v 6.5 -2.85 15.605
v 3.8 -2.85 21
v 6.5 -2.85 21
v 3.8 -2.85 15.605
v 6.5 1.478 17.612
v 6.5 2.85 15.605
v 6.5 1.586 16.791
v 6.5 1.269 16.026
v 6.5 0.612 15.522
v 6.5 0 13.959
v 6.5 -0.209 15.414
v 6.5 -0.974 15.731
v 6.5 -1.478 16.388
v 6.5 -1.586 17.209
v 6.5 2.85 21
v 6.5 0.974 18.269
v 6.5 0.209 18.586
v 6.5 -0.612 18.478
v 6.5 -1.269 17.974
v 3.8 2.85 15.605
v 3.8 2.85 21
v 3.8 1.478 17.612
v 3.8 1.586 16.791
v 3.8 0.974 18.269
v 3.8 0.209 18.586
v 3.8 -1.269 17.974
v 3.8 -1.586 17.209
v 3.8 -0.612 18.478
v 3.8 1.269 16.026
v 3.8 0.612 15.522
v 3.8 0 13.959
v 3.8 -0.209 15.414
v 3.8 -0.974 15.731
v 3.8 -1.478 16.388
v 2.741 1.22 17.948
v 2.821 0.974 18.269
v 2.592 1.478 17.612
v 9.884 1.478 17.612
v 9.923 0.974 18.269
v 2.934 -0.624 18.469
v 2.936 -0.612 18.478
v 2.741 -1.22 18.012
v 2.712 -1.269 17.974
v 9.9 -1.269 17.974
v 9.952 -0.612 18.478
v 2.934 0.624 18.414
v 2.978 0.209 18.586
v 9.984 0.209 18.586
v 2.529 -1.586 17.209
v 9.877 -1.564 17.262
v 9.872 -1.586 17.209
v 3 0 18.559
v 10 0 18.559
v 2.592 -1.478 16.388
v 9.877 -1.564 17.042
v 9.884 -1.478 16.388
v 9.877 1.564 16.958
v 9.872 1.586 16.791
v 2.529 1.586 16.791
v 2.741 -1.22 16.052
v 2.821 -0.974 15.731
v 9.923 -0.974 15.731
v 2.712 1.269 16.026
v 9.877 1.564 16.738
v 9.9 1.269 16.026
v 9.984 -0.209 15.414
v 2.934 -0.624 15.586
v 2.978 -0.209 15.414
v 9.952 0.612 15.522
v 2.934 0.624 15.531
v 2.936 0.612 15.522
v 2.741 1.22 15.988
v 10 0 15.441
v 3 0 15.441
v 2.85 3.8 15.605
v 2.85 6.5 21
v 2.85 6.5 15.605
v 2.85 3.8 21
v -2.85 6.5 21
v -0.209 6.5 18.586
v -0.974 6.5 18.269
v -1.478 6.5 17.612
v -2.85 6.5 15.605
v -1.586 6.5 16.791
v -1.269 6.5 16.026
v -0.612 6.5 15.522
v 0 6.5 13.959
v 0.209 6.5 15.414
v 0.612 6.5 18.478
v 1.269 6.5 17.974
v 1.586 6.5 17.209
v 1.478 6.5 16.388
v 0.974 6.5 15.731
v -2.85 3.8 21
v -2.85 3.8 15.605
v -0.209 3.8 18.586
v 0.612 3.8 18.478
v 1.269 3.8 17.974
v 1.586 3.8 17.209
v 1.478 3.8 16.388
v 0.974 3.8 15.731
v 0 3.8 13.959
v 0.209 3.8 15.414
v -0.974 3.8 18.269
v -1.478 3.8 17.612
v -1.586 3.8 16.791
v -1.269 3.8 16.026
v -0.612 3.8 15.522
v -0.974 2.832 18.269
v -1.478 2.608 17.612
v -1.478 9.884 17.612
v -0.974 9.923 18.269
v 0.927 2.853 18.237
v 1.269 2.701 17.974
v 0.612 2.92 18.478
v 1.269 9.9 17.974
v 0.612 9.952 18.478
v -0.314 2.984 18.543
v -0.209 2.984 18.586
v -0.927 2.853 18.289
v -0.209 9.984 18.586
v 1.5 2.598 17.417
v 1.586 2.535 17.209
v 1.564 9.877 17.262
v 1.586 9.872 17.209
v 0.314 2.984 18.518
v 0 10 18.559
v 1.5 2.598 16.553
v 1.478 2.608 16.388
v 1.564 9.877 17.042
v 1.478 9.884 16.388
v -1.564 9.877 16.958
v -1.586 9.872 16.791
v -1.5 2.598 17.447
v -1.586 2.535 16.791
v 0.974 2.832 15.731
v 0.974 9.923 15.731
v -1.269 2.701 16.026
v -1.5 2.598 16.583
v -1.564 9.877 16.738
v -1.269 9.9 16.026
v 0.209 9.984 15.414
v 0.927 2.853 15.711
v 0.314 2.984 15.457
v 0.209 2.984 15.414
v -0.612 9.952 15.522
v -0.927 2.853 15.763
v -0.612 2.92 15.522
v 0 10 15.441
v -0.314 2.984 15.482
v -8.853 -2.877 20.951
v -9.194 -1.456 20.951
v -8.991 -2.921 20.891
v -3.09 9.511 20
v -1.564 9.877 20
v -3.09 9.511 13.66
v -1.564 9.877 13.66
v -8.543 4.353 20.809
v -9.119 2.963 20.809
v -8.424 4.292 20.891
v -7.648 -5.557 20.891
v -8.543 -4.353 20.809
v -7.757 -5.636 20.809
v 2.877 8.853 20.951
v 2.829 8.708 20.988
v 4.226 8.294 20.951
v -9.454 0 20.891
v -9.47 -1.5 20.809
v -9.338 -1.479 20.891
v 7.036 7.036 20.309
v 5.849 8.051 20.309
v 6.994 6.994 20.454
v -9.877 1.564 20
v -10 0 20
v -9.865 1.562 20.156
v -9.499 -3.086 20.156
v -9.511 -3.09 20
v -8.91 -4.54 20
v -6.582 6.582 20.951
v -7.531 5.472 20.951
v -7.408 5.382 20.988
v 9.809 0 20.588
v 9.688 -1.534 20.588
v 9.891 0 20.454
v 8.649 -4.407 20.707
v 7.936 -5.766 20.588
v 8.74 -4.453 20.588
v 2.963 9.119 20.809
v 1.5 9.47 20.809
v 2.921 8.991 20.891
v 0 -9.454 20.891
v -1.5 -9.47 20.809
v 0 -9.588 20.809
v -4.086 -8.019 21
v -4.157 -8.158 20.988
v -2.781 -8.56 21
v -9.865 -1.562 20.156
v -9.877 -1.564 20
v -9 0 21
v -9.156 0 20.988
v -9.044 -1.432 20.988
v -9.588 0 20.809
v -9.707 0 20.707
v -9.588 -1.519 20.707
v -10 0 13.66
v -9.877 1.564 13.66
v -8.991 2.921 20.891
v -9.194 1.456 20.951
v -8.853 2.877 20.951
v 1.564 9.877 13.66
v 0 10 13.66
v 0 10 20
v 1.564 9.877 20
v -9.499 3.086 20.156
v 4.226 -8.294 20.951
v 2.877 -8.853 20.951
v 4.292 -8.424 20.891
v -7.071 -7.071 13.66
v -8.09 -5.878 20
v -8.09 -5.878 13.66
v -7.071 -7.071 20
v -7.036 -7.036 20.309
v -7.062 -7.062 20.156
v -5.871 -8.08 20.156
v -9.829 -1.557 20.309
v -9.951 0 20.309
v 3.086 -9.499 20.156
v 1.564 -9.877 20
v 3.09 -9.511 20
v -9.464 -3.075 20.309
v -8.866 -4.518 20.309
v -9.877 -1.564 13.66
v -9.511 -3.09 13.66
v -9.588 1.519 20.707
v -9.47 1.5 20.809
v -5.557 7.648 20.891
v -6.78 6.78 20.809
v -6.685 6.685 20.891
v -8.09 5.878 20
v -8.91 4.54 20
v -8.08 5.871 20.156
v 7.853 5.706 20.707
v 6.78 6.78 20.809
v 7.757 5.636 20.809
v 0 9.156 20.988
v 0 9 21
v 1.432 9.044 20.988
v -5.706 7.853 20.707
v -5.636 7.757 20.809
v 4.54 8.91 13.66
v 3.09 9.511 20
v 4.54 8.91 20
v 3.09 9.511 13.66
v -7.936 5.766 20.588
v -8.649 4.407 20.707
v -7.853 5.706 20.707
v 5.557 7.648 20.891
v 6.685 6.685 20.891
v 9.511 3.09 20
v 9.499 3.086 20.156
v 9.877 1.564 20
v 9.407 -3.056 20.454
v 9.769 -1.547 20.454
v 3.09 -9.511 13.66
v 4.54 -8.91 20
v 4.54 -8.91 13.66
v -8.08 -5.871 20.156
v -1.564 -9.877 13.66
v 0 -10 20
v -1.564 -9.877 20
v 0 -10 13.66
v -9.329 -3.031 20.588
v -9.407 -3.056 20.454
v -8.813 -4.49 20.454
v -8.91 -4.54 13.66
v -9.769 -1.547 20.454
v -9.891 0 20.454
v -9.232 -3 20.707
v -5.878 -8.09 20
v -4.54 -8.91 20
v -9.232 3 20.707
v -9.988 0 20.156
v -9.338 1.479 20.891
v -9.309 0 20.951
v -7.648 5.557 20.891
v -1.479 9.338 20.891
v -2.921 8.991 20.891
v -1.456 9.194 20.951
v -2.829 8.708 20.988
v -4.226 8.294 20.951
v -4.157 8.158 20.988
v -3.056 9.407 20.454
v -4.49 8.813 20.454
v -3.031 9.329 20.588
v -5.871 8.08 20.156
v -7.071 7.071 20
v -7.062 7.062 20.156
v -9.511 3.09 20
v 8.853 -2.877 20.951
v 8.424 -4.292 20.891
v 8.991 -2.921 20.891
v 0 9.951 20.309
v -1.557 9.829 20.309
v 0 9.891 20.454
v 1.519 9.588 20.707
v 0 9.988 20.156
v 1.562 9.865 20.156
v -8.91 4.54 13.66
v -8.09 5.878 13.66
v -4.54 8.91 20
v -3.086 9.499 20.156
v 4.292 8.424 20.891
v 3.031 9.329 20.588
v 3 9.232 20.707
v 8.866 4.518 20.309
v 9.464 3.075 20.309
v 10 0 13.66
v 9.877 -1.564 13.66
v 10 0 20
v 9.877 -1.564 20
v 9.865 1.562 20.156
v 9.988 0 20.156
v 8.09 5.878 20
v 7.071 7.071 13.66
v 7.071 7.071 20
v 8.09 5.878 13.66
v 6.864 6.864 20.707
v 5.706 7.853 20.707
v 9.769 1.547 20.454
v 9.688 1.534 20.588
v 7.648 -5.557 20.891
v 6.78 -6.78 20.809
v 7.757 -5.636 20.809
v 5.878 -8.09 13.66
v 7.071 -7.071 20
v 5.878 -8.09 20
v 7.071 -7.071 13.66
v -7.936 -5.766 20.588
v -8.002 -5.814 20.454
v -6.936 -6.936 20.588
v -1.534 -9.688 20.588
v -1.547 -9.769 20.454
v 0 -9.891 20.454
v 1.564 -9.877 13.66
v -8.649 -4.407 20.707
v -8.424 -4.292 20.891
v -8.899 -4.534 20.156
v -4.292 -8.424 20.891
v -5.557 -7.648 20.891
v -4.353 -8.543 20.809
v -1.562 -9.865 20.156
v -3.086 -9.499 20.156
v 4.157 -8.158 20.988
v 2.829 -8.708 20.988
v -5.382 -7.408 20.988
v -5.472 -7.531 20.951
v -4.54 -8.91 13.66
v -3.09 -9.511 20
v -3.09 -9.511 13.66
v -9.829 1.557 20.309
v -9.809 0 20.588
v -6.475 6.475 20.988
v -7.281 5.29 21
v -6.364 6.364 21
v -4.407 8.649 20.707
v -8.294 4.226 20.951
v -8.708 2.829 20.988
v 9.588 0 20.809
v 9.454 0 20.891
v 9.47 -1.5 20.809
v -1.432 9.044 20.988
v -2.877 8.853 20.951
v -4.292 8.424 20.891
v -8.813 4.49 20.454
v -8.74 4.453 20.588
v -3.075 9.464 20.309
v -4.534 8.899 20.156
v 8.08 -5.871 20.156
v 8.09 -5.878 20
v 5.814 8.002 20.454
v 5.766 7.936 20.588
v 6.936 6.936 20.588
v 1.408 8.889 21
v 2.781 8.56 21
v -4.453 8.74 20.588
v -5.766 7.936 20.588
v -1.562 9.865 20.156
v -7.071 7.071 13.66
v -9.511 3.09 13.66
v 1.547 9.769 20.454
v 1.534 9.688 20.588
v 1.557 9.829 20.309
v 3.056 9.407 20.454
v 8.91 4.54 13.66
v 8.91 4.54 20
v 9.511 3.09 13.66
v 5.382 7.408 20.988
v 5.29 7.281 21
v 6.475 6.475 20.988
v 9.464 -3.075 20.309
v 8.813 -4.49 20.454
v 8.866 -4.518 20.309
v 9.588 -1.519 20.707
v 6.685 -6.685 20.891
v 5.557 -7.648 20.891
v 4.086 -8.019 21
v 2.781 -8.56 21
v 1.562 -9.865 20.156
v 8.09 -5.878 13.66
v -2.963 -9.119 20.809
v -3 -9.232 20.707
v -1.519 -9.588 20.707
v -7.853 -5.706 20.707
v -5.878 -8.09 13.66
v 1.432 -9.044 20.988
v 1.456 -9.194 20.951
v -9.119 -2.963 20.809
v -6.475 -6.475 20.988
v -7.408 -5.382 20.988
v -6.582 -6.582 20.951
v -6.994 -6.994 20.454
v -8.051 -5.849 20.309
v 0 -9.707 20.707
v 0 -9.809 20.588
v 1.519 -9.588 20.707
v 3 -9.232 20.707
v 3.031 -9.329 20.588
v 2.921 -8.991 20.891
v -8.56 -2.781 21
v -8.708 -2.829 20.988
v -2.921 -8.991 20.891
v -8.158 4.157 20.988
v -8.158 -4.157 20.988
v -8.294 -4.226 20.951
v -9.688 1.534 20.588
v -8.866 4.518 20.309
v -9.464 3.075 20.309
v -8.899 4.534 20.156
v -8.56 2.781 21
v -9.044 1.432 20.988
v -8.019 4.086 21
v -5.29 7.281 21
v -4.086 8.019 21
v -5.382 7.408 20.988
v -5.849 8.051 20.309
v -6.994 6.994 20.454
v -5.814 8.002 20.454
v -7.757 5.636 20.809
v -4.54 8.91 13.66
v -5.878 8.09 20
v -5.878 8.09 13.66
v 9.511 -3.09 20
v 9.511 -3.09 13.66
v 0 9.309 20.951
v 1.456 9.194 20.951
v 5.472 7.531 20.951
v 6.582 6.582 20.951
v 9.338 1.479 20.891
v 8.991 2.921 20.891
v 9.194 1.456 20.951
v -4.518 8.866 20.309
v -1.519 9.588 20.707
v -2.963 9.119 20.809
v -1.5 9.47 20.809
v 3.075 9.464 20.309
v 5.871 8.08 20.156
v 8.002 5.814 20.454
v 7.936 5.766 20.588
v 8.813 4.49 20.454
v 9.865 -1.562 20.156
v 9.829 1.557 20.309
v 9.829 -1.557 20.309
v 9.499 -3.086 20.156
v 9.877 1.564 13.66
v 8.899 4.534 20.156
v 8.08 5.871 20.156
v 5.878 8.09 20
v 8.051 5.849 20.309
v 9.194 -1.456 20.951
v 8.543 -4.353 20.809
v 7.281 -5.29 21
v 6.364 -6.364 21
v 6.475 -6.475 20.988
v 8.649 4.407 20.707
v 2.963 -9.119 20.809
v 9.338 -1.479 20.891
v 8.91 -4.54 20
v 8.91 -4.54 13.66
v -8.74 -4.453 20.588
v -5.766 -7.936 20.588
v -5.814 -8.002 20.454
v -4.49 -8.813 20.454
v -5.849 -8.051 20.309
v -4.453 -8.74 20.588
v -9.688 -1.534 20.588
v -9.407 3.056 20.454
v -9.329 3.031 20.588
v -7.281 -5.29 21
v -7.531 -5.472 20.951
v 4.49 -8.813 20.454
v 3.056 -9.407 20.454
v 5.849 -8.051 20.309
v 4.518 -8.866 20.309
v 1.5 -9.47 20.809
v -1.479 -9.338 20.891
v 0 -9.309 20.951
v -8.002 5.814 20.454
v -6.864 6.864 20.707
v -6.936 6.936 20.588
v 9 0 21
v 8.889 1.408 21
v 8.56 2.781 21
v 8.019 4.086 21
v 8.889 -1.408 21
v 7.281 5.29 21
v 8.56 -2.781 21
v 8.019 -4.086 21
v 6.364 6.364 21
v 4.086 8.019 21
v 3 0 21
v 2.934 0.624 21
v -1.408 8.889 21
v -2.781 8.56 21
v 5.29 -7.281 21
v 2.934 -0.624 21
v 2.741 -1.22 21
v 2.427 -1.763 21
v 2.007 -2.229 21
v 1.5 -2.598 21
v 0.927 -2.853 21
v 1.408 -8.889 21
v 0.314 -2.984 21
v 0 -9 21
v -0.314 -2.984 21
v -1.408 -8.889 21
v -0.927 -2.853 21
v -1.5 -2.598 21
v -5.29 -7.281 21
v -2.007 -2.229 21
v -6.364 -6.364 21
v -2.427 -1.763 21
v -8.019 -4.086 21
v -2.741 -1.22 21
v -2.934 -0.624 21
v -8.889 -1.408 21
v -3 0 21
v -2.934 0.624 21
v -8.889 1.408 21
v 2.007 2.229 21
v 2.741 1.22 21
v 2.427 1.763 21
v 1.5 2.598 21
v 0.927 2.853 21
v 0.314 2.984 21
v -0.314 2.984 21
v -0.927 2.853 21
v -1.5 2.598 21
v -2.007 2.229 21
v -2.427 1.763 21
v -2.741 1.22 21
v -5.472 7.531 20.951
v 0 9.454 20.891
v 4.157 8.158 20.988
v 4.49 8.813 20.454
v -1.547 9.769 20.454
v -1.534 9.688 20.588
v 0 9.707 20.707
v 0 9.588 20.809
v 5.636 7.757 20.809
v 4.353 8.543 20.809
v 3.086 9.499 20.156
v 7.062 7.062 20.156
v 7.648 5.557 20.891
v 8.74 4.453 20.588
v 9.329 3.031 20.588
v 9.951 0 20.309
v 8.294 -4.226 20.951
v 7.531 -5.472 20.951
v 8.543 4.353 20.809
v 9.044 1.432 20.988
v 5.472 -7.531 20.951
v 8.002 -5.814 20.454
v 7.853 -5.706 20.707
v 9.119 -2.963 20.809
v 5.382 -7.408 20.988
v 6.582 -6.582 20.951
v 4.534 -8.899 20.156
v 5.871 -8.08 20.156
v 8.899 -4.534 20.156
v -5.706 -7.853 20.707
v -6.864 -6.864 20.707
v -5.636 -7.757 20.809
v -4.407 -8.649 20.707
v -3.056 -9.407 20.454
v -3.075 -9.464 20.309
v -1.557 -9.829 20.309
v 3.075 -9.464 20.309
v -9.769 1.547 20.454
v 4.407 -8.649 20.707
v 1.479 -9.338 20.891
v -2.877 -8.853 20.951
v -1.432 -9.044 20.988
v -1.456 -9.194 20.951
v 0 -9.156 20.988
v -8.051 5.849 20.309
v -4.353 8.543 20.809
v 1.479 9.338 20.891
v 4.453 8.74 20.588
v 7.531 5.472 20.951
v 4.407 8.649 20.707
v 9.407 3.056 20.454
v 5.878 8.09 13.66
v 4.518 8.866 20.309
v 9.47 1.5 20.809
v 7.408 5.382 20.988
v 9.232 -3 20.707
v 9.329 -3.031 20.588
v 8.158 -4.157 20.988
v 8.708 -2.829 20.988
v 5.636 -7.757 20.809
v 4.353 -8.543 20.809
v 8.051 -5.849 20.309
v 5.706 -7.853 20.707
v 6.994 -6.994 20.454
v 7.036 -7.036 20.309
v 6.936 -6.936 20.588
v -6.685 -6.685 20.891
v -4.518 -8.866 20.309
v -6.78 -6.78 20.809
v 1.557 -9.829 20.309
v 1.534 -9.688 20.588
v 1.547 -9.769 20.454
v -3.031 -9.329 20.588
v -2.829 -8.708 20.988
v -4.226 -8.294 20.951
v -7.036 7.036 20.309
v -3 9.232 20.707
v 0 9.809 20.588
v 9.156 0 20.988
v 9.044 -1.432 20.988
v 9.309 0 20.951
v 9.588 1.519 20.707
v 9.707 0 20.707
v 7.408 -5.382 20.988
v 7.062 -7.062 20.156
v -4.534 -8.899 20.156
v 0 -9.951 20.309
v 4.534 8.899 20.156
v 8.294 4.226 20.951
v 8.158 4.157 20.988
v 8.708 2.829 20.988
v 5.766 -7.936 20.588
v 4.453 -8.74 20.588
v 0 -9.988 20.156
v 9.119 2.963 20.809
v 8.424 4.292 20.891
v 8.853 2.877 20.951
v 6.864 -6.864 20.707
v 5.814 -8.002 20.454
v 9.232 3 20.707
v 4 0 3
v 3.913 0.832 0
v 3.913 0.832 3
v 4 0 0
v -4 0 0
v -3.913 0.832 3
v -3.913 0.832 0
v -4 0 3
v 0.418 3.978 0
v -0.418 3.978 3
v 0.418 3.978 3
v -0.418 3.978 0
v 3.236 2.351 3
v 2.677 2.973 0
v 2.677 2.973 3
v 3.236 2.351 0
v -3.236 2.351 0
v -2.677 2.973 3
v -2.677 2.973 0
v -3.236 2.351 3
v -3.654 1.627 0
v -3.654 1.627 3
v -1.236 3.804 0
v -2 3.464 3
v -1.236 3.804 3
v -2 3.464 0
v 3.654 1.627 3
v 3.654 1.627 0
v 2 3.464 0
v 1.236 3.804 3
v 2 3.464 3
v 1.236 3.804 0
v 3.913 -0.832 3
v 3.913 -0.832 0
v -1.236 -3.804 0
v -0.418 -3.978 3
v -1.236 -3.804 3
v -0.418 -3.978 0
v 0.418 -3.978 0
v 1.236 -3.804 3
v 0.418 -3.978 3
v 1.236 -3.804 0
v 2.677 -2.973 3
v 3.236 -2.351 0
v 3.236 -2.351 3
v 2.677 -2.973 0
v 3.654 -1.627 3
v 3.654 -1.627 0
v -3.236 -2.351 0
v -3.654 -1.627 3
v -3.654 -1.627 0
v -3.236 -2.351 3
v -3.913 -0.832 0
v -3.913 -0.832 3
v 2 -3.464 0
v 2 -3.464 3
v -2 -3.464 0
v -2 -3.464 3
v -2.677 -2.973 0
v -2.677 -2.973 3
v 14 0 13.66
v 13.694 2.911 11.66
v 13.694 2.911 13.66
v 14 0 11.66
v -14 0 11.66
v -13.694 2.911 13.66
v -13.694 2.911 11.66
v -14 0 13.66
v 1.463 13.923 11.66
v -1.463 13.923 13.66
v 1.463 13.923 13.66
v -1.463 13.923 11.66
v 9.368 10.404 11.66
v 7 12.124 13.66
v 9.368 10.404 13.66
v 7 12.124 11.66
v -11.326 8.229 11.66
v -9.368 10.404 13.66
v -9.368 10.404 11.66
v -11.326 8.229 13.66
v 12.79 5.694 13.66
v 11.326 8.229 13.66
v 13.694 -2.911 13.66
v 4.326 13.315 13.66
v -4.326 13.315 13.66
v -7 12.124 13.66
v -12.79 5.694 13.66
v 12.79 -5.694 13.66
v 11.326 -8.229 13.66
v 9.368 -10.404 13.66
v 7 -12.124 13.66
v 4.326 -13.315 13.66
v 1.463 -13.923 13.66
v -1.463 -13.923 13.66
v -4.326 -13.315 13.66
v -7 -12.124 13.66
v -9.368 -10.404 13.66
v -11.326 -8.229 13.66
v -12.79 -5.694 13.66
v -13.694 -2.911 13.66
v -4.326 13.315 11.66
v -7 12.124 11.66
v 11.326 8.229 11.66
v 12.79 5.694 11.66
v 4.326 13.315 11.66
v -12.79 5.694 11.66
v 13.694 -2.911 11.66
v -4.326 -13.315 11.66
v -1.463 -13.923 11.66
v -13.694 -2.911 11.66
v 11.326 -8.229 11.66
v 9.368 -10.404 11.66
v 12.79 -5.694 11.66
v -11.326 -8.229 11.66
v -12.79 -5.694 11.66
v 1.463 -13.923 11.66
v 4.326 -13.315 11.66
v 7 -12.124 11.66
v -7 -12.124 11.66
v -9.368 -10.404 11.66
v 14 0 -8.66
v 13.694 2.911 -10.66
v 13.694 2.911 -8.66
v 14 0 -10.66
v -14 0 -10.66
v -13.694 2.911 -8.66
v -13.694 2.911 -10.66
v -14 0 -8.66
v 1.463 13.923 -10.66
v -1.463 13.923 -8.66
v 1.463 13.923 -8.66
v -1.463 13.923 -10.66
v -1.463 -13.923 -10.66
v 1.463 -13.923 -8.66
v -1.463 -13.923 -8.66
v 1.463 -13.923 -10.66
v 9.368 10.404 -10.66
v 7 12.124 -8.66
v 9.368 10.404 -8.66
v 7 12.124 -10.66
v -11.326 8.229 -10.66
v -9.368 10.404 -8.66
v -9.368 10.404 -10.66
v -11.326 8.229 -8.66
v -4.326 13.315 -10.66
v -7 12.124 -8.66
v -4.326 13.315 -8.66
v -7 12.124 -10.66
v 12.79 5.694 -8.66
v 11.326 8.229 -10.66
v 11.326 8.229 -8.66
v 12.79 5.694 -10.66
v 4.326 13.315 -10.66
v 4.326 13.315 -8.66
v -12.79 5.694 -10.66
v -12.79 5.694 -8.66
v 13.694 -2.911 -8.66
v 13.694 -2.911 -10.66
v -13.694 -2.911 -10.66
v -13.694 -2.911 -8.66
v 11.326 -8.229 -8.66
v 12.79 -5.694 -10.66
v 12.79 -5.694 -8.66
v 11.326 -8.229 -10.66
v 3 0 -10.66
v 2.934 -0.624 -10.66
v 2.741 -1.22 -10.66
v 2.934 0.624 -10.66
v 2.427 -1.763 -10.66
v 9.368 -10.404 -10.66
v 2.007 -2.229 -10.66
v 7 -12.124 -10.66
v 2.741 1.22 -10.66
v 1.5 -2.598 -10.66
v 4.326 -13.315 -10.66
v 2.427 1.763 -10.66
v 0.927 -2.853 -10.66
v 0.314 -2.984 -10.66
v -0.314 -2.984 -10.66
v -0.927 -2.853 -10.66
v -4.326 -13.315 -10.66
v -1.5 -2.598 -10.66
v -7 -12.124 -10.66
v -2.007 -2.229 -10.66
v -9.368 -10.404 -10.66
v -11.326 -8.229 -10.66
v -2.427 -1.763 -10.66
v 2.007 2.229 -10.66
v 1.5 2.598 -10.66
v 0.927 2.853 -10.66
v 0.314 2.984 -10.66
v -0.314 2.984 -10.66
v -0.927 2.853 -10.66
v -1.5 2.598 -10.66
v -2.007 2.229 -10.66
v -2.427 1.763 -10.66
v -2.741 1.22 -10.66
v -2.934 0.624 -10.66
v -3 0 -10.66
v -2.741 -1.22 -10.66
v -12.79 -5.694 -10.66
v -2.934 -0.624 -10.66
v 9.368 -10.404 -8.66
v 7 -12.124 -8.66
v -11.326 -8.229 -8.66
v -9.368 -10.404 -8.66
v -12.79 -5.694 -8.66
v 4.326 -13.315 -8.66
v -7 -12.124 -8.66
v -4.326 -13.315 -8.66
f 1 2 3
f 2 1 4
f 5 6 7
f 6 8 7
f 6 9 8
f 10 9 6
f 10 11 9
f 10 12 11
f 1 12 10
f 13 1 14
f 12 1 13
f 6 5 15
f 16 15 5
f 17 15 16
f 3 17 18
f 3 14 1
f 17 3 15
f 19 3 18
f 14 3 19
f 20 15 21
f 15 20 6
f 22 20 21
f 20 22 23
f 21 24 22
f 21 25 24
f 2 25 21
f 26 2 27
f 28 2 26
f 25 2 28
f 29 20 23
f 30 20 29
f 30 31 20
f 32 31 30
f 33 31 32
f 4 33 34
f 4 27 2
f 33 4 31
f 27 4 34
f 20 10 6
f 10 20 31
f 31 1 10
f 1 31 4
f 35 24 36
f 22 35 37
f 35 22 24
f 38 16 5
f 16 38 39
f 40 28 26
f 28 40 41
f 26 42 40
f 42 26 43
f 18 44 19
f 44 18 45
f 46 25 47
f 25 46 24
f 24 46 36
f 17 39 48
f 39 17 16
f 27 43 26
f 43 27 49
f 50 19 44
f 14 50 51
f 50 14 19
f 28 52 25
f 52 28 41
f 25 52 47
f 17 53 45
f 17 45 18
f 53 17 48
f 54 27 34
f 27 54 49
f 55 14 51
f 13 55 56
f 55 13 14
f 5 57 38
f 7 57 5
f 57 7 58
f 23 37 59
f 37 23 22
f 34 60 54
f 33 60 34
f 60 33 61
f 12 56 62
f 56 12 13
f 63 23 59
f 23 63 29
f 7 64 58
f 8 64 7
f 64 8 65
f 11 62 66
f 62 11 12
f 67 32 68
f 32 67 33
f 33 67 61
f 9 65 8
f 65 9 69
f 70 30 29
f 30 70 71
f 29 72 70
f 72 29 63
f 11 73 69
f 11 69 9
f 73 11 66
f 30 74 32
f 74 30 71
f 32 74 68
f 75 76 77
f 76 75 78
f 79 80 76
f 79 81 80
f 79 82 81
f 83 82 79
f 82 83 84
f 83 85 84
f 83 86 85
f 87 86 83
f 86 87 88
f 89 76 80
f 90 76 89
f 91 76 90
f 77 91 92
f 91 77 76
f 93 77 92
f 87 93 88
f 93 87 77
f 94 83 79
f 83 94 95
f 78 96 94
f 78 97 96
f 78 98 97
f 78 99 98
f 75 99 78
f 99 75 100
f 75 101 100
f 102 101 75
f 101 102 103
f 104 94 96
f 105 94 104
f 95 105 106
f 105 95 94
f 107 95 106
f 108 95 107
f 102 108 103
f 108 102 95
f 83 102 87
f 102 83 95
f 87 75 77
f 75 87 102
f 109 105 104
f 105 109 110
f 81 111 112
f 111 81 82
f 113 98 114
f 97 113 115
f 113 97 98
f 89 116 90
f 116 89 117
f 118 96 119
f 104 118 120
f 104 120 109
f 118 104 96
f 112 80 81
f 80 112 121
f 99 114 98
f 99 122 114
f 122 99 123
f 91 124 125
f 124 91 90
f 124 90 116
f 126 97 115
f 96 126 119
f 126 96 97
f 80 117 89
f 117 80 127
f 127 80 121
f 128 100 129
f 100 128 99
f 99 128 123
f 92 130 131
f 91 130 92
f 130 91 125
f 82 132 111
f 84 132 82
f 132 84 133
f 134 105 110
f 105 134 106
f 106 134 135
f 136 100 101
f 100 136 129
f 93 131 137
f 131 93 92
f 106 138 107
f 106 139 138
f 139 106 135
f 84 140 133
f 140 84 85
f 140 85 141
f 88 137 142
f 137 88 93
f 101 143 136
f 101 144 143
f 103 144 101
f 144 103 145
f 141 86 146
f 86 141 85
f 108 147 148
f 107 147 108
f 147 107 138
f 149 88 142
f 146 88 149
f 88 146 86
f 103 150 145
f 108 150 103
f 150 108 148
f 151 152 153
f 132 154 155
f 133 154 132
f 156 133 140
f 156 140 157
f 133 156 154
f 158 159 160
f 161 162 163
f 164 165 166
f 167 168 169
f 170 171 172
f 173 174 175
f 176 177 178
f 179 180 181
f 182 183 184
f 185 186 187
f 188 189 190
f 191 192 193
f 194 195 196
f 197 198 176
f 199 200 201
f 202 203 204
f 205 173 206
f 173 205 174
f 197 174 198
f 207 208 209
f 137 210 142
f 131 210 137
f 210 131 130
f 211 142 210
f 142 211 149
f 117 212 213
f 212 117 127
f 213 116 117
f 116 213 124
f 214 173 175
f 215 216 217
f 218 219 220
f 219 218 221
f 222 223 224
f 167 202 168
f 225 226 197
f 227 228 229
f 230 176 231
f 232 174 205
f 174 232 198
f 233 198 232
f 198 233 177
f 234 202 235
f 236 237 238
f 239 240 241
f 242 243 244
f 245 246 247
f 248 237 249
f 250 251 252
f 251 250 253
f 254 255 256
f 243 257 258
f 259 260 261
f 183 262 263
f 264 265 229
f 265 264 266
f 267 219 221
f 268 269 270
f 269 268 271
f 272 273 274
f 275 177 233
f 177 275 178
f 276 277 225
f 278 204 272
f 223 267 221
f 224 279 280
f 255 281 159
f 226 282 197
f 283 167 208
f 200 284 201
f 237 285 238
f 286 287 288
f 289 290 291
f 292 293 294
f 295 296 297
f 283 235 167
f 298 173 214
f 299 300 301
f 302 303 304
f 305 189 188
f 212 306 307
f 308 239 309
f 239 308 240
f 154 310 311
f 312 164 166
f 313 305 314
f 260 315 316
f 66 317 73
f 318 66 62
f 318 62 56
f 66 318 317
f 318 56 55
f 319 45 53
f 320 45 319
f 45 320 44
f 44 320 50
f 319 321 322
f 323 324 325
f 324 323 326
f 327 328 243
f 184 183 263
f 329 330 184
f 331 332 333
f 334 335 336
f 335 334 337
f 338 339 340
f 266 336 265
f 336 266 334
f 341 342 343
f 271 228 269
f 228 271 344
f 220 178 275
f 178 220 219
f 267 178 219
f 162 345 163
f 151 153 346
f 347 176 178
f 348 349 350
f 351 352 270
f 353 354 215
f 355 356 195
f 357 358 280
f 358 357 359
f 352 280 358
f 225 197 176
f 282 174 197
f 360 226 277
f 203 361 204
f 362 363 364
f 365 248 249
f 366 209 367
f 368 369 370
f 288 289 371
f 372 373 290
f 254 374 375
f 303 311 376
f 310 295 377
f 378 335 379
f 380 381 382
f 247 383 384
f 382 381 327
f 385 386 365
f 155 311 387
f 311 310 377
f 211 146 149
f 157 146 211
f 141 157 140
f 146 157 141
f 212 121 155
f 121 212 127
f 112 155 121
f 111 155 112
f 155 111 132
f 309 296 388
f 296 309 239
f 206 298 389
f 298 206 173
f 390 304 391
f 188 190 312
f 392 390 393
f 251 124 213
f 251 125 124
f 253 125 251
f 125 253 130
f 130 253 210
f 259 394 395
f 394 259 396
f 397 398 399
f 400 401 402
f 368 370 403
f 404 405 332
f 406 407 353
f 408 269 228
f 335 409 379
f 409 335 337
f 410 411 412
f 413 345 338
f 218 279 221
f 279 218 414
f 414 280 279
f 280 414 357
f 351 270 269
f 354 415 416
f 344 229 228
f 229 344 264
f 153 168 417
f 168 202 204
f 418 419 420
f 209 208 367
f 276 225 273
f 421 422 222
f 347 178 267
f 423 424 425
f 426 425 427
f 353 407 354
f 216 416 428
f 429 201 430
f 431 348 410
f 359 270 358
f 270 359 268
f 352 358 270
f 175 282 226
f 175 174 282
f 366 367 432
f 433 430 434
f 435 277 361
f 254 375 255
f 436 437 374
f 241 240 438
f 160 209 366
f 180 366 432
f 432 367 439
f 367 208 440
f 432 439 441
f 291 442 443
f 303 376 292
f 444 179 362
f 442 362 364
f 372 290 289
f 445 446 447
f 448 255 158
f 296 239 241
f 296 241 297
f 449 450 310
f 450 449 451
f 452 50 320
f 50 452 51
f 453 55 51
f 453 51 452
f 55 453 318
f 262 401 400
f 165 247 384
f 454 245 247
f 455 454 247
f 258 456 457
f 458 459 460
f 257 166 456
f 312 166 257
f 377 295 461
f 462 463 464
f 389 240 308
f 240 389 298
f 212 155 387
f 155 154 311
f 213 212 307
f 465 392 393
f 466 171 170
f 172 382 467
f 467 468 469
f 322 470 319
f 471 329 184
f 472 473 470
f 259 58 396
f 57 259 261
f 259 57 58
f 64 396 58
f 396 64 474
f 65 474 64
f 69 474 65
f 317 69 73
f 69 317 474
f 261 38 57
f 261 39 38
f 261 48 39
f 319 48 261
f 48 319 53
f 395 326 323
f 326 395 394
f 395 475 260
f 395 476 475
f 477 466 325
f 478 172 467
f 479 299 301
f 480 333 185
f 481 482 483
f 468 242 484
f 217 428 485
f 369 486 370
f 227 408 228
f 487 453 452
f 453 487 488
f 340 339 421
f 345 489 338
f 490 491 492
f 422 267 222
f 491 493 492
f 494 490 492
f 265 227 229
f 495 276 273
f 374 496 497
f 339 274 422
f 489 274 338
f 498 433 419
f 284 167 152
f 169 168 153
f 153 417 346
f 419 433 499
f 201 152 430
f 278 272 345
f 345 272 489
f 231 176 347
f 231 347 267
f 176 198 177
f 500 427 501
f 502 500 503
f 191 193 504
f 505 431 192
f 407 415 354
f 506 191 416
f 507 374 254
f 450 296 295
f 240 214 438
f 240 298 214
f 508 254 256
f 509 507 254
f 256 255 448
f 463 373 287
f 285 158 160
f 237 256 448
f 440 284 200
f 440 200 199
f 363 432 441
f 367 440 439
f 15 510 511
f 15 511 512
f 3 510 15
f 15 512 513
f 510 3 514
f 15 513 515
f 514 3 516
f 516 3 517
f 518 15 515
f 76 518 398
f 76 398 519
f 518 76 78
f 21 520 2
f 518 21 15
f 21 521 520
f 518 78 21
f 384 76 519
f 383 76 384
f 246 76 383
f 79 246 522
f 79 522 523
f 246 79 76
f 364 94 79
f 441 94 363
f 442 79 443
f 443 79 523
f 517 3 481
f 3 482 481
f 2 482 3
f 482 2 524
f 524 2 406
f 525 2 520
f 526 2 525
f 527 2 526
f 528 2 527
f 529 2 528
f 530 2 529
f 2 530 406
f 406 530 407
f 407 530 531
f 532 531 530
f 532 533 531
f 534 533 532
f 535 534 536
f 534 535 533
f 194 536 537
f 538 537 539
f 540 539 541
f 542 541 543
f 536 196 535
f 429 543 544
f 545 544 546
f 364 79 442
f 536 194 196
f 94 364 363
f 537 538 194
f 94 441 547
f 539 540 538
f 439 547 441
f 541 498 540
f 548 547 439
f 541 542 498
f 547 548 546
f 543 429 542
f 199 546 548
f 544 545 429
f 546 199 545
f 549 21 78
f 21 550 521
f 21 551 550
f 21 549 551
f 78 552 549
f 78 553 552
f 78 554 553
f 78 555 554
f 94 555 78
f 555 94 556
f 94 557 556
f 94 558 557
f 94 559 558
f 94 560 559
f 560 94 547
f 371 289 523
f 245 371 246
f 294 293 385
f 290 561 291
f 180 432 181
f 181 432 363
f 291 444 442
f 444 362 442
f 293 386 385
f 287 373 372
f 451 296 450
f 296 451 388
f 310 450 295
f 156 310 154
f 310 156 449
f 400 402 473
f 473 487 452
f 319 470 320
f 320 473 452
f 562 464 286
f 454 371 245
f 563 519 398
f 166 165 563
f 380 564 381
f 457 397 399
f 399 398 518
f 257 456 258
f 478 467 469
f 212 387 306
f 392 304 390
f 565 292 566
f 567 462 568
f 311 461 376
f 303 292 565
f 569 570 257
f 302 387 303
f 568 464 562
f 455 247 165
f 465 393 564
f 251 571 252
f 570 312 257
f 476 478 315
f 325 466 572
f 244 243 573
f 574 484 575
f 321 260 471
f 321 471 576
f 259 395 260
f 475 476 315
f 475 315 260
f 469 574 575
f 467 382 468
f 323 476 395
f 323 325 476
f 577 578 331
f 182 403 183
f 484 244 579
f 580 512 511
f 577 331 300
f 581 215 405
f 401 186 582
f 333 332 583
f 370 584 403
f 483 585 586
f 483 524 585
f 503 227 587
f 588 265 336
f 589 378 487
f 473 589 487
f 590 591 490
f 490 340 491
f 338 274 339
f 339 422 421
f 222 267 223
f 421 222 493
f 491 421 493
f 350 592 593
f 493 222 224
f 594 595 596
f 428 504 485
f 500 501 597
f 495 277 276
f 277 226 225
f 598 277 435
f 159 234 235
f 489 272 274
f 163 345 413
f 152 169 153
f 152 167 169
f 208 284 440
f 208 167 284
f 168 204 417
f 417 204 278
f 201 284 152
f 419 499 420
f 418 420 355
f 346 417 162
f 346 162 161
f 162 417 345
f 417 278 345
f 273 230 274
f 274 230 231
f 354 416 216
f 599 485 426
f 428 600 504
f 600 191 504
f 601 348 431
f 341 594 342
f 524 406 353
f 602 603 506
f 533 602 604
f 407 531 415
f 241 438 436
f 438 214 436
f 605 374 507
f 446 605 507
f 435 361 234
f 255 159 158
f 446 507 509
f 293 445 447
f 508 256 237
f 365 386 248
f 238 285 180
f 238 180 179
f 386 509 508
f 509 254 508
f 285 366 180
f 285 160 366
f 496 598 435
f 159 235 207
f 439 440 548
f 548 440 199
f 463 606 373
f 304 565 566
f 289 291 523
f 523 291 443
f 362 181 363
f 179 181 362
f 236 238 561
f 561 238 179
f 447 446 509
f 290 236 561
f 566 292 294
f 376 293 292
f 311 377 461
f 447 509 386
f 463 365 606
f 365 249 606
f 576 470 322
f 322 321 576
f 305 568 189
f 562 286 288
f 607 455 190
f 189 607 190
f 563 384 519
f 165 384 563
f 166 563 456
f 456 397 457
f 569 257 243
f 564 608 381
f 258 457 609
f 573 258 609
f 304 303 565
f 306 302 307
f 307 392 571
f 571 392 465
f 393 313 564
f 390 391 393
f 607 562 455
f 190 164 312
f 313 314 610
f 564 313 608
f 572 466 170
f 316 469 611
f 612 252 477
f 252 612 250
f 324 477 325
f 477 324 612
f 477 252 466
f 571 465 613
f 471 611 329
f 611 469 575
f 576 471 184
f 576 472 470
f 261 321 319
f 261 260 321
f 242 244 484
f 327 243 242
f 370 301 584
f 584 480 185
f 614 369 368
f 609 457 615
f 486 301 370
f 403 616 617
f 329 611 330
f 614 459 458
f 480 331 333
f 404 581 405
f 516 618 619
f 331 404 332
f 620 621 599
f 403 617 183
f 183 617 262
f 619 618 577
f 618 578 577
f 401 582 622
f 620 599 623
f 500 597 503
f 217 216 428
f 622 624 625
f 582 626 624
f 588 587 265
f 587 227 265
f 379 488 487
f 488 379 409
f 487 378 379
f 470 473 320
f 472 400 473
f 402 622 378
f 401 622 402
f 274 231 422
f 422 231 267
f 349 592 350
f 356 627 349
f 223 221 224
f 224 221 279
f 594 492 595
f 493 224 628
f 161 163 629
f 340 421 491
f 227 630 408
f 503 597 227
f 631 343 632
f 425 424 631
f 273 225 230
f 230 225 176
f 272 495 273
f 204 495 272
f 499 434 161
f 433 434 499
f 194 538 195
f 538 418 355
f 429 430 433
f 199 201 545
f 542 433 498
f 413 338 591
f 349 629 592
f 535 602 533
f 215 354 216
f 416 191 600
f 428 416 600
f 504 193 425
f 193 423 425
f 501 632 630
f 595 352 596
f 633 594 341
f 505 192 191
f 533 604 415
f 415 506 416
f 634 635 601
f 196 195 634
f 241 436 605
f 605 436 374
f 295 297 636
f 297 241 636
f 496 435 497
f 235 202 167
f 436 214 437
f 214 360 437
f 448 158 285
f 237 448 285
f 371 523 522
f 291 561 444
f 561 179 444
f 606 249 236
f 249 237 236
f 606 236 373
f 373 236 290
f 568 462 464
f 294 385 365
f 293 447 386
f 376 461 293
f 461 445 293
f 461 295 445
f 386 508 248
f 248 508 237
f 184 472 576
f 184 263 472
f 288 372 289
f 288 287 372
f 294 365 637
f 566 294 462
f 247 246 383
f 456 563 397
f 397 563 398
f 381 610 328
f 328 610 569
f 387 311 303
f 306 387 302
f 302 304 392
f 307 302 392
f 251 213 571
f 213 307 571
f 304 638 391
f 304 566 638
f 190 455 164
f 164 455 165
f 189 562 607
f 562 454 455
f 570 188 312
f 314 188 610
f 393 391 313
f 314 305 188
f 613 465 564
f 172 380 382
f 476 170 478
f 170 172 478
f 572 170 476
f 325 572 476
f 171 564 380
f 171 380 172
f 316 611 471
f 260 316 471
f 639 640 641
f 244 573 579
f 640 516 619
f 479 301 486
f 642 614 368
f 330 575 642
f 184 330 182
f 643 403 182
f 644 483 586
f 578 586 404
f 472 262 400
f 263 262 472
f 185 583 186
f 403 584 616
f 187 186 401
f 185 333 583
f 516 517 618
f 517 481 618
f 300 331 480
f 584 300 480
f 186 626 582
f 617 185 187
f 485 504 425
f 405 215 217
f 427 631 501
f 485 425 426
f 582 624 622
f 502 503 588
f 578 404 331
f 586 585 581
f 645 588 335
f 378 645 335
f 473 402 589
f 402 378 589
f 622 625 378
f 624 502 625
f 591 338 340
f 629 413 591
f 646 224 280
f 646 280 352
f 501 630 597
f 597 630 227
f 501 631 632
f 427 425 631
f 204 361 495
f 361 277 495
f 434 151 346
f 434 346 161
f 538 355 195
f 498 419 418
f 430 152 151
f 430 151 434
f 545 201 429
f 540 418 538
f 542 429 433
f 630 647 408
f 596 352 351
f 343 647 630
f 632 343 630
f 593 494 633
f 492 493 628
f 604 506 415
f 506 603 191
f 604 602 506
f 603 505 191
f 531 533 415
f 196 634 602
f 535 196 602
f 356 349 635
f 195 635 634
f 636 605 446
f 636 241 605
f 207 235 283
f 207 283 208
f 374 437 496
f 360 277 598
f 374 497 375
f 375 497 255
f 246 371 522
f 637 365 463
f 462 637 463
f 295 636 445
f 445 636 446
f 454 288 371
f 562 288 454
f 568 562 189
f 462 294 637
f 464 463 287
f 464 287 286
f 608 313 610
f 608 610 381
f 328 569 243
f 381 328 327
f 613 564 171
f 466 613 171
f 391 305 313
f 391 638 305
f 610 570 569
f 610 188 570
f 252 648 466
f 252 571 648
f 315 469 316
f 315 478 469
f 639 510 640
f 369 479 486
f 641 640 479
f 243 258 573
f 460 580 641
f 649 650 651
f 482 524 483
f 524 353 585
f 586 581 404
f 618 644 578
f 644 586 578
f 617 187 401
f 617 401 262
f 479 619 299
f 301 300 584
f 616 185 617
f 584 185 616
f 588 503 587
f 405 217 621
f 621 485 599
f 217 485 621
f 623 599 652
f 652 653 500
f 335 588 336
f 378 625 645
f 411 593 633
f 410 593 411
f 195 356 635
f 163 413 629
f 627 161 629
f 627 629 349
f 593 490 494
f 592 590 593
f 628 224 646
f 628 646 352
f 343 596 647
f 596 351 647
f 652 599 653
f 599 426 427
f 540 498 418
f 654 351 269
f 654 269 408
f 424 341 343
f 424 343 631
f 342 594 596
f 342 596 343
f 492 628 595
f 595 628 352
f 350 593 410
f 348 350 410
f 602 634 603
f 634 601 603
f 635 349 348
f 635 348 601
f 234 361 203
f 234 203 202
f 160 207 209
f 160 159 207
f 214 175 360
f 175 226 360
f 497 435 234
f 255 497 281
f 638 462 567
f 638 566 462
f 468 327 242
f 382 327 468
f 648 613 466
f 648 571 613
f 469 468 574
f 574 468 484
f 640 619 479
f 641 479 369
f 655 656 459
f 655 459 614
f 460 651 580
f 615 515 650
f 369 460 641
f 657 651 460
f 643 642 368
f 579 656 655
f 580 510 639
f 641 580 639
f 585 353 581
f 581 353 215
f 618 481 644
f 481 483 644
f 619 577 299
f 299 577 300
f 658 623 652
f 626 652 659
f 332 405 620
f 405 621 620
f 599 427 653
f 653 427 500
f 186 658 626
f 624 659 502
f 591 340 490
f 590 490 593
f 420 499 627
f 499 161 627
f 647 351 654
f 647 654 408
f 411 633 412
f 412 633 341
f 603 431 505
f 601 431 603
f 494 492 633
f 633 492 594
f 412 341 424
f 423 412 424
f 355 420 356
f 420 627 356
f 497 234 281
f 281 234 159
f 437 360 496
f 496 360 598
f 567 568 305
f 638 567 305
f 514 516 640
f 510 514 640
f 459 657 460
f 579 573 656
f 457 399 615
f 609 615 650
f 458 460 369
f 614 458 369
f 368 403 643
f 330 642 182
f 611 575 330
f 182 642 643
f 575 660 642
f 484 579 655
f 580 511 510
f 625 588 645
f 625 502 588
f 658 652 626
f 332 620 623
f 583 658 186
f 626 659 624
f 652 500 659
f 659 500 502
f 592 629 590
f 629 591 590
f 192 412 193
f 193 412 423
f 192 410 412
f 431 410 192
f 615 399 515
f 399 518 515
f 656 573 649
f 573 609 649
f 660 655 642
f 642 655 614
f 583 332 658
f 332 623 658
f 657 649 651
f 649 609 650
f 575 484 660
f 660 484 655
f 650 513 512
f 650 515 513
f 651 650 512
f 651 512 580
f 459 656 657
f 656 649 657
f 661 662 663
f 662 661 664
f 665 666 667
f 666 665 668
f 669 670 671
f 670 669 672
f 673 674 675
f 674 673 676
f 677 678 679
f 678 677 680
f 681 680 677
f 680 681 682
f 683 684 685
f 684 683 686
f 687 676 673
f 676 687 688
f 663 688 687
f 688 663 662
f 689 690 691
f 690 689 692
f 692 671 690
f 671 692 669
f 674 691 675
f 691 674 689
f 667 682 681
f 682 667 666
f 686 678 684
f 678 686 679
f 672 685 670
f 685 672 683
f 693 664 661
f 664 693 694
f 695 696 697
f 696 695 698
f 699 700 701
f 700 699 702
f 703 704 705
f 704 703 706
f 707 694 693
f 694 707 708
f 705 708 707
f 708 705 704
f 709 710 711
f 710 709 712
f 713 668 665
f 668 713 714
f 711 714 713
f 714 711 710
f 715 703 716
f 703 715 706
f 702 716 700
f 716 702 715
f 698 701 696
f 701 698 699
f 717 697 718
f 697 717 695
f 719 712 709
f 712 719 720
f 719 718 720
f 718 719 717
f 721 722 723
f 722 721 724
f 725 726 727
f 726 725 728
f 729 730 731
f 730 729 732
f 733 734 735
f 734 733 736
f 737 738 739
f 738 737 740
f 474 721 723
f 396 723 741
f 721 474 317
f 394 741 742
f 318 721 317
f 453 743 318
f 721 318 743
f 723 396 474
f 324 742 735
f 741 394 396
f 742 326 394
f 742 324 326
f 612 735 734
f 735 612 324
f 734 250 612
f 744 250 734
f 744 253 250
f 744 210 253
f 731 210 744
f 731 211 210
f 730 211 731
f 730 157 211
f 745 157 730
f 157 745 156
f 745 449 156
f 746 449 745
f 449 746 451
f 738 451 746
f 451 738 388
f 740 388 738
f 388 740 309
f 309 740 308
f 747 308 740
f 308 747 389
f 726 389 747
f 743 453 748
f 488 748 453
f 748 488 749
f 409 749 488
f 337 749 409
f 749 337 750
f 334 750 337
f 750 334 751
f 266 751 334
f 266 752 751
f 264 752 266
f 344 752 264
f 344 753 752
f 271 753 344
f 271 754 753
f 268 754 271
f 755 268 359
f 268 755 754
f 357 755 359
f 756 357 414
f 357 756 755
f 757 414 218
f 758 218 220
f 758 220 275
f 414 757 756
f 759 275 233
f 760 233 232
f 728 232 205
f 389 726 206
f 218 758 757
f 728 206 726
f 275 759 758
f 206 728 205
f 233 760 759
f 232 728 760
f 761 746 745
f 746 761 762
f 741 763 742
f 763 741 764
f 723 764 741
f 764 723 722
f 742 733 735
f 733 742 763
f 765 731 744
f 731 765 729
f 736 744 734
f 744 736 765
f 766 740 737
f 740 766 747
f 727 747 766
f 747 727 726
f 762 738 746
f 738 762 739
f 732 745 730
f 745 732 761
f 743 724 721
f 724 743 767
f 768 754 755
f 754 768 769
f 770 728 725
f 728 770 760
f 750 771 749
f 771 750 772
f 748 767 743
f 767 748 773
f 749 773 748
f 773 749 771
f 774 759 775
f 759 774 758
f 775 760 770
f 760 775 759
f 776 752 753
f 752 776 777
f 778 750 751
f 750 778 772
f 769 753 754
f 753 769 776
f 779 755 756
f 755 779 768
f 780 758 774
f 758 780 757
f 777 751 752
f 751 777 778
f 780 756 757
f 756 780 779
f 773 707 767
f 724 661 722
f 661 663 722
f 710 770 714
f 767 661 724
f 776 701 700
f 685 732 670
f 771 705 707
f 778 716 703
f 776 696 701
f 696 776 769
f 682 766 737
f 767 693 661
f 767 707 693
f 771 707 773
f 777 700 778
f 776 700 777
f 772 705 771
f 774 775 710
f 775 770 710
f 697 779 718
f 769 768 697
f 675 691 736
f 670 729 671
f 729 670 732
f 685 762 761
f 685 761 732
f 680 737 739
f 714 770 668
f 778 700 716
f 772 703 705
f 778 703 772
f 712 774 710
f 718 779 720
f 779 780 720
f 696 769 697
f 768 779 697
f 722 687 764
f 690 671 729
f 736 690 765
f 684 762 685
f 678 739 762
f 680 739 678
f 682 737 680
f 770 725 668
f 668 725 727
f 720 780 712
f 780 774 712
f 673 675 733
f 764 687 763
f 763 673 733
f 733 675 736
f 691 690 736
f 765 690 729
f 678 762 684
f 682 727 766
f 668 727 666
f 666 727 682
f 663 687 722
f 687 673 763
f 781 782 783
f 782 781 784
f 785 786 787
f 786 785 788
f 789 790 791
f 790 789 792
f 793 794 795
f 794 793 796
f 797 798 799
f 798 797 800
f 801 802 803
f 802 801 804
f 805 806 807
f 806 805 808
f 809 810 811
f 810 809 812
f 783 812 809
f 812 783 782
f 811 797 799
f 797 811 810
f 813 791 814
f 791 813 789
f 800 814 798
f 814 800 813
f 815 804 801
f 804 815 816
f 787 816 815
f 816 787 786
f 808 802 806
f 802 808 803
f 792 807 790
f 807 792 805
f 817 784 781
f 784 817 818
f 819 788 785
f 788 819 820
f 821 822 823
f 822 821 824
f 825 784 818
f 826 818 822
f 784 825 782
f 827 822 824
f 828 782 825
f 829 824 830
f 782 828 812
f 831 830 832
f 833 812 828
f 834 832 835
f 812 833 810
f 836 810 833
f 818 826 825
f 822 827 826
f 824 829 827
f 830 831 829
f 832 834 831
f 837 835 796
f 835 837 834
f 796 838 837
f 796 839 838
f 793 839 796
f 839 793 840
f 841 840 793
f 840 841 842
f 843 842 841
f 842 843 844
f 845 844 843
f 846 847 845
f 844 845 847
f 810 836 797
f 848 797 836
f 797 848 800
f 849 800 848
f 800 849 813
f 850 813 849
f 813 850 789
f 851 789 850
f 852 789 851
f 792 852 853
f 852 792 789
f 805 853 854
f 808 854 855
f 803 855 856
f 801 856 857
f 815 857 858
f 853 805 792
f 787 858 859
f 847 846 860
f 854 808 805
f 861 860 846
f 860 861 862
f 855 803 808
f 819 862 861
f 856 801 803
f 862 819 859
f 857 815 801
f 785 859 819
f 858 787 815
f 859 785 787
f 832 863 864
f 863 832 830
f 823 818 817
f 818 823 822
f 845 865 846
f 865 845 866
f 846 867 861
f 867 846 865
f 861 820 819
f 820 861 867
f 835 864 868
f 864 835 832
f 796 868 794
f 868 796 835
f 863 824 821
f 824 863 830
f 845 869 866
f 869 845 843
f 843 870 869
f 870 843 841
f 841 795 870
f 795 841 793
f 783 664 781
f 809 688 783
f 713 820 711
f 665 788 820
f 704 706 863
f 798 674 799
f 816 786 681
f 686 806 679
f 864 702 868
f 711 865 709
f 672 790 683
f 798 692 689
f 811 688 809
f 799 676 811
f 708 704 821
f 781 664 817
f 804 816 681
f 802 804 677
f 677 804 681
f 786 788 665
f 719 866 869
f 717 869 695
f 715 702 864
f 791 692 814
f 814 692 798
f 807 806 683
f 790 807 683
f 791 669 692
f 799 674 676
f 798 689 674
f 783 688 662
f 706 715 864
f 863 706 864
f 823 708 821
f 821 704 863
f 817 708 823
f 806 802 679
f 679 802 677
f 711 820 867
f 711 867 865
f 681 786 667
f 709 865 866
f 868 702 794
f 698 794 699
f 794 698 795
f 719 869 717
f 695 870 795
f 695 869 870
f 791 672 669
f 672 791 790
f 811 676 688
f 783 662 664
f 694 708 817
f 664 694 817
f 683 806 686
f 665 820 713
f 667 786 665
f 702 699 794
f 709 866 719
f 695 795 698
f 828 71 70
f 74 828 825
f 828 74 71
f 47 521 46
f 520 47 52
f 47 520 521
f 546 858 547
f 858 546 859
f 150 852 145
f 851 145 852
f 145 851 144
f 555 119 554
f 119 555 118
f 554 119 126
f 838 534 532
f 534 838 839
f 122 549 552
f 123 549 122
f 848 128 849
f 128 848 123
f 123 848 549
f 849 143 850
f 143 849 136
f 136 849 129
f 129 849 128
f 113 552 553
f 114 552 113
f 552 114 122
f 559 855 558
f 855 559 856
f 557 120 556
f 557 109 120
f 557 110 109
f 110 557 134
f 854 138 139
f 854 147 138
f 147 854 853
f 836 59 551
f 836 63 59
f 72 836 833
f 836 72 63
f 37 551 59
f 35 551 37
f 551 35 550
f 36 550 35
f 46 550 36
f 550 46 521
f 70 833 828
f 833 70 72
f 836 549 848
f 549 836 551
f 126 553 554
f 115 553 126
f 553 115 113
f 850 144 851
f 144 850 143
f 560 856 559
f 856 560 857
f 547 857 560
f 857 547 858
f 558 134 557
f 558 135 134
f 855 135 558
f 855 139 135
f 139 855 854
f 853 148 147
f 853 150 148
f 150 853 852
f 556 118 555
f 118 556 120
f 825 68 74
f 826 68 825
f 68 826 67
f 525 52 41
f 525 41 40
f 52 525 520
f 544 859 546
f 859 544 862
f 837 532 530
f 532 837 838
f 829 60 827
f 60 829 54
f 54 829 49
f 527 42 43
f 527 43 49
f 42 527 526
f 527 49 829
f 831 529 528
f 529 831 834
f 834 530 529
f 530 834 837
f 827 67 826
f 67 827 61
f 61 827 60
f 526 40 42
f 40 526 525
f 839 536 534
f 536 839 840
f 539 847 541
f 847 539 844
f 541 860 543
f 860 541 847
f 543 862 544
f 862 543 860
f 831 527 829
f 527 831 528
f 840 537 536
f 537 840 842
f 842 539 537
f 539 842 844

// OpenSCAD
//variables (mm)
bearingOD = 6;// bearing diameter
bearingwidth = 20;
beltwidth= 1;

skrufestetykkelse = 12;

m3_dia = 3.2;		// 3mm hole diameter
m3_nut_hex = 1;		// 1 for hex, 0 for square nut
m3_nut_flats = 5.7;	// normal M3 hex nut exact width = 5.5
m3_nut_depth = 2.7;	// normal M3 hex nut exact depth = 2.4, nyloc = 4
no_of_nuts = 2;		// number of captive nuts required, standard = 1
nut_angle = 90;		// angle between nuts, standard = 90
nut_shaft_distance = 1.2;	// distance between inner face of nut and shaft, can be negative.
pulley_b_dia = 20;	// pulley base diameter, standard = 20
motor_shaft = 5.2;	// NEMA17 motor shaft exact diameter = 5
pulley_b_ht = 8;		// pulley base height, standard = 8. Set to same as idler_ht if you want an idler but no pulley.

nut_elevation = pulley_b_ht/2;
m3_nut_points = 2*((m3_nut_flats/2)/cos(30)); // This is needed for the nut trap



slopfactor = .0; // it printed a bit tight on my printer so i added this slop factor to make the hole slightly looser.. you may not need it

thickness = 2;

	idlerID = bearingOD + slopfactor; 

	idlerOD = idlerID+thickness;
	$fn=30; //faceting

//these are the lips that hold the belt on
	lipheight = 10;
	lipthickness = 2;
	topangle = 30; //the angle the top lip overhang makes. You can increase this to lower the idler profile.

//construction
	difference(){
	union(){
        
        // base for skrufeste
translate([0,0,skrufestetykkelse+1])
difference() {

    rotate_extrude($fn=pulley_b_dia*2)
        {
            square([pulley_b_dia/2-1,pulley_b_ht]);
            square([pulley_b_dia/2,pulley_b_ht-1]);
            translate([pulley_b_dia/2-1,pulley_b_ht-1]) circle(1);
        }
        for(j=[1:no_of_nuts]) rotate([0,0,j*nut_angle])
            translate([0,0,nut_elevation])rotate([90,0,0])

            union()
            {
                //entrance
                translate([0,(-pulley_b_ht/4-0.5)+5,motor_shaft/2+m3_nut_depth/2+nut_shaft_distance])           cube([m3_nut_flats,pulley_b_ht/2+1,m3_nut_depth],center=true);

                //nut
                if ( m3_nut_hex > 0 )
                {
                    // hex nut
                    translate([0,0.25,motor_shaft/2+m3_nut_depth/2+nut_shaft_distance]) rotate([0,0,30]) cylinder(r=m3_nut_points/2,h=m3_nut_depth,center=true,$fn=6);
                } else {
                    // square nut
                    translate([0,0.25,motor_shaft/2+m3_nut_depth/2+nut_shaft_distance]) cube([m3_nut_flats,m3_nut_flats,m3_nut_depth],center=true);
                }
	
                //grub screw hole
                rotate([0,0,22.5])cylinder(r=m3_dia/2,h=pulley_b_dia/2+1,$fn=12);
            }
        }
        
        
            //cylinder(r=lipheight+idlerOD/2, h=lipthickness);
        cylinder(r=idlerOD/2, h = lipthickness*2+beltwidth+lipheight*cos(topangle));
        translate([0,0,lipthickness+beltwidth+lipheight*cos(topangle)])cylinder(r=lipheight+idlerOD/2, h=lipthickness);
		translate([0,0,beltwidth+lipthickness])cylinder(r1=idlerOD/2, r2=lipheight+idlerOD/2, h=lipheight*cos(topangle));
        
        translate([0,0,-(lipthickness+lipheight*cos(topangle))])cylinder(r=lipheight+idlerOD/2, h=lipthickness);
		translate([0,0,-(lipheight*cos(topangle))])cylinder(r2=idlerOD/2, r1=lipheight+idlerOD/2, h=lipheight*cos(topangle));
    }
    //Senterhull
        translate([0,0,-(bearingwidth+(lipthickness*2)+beltwidth)/2])cylinder(r=idlerID/2, h=bearingwidth+(lipthickness*2)+beltwidth+10);
            // inner lip to hold bearing
		//translate([0,0,-1])cylinder(r=idlerID/2-1, h=bearingwidth);
}
